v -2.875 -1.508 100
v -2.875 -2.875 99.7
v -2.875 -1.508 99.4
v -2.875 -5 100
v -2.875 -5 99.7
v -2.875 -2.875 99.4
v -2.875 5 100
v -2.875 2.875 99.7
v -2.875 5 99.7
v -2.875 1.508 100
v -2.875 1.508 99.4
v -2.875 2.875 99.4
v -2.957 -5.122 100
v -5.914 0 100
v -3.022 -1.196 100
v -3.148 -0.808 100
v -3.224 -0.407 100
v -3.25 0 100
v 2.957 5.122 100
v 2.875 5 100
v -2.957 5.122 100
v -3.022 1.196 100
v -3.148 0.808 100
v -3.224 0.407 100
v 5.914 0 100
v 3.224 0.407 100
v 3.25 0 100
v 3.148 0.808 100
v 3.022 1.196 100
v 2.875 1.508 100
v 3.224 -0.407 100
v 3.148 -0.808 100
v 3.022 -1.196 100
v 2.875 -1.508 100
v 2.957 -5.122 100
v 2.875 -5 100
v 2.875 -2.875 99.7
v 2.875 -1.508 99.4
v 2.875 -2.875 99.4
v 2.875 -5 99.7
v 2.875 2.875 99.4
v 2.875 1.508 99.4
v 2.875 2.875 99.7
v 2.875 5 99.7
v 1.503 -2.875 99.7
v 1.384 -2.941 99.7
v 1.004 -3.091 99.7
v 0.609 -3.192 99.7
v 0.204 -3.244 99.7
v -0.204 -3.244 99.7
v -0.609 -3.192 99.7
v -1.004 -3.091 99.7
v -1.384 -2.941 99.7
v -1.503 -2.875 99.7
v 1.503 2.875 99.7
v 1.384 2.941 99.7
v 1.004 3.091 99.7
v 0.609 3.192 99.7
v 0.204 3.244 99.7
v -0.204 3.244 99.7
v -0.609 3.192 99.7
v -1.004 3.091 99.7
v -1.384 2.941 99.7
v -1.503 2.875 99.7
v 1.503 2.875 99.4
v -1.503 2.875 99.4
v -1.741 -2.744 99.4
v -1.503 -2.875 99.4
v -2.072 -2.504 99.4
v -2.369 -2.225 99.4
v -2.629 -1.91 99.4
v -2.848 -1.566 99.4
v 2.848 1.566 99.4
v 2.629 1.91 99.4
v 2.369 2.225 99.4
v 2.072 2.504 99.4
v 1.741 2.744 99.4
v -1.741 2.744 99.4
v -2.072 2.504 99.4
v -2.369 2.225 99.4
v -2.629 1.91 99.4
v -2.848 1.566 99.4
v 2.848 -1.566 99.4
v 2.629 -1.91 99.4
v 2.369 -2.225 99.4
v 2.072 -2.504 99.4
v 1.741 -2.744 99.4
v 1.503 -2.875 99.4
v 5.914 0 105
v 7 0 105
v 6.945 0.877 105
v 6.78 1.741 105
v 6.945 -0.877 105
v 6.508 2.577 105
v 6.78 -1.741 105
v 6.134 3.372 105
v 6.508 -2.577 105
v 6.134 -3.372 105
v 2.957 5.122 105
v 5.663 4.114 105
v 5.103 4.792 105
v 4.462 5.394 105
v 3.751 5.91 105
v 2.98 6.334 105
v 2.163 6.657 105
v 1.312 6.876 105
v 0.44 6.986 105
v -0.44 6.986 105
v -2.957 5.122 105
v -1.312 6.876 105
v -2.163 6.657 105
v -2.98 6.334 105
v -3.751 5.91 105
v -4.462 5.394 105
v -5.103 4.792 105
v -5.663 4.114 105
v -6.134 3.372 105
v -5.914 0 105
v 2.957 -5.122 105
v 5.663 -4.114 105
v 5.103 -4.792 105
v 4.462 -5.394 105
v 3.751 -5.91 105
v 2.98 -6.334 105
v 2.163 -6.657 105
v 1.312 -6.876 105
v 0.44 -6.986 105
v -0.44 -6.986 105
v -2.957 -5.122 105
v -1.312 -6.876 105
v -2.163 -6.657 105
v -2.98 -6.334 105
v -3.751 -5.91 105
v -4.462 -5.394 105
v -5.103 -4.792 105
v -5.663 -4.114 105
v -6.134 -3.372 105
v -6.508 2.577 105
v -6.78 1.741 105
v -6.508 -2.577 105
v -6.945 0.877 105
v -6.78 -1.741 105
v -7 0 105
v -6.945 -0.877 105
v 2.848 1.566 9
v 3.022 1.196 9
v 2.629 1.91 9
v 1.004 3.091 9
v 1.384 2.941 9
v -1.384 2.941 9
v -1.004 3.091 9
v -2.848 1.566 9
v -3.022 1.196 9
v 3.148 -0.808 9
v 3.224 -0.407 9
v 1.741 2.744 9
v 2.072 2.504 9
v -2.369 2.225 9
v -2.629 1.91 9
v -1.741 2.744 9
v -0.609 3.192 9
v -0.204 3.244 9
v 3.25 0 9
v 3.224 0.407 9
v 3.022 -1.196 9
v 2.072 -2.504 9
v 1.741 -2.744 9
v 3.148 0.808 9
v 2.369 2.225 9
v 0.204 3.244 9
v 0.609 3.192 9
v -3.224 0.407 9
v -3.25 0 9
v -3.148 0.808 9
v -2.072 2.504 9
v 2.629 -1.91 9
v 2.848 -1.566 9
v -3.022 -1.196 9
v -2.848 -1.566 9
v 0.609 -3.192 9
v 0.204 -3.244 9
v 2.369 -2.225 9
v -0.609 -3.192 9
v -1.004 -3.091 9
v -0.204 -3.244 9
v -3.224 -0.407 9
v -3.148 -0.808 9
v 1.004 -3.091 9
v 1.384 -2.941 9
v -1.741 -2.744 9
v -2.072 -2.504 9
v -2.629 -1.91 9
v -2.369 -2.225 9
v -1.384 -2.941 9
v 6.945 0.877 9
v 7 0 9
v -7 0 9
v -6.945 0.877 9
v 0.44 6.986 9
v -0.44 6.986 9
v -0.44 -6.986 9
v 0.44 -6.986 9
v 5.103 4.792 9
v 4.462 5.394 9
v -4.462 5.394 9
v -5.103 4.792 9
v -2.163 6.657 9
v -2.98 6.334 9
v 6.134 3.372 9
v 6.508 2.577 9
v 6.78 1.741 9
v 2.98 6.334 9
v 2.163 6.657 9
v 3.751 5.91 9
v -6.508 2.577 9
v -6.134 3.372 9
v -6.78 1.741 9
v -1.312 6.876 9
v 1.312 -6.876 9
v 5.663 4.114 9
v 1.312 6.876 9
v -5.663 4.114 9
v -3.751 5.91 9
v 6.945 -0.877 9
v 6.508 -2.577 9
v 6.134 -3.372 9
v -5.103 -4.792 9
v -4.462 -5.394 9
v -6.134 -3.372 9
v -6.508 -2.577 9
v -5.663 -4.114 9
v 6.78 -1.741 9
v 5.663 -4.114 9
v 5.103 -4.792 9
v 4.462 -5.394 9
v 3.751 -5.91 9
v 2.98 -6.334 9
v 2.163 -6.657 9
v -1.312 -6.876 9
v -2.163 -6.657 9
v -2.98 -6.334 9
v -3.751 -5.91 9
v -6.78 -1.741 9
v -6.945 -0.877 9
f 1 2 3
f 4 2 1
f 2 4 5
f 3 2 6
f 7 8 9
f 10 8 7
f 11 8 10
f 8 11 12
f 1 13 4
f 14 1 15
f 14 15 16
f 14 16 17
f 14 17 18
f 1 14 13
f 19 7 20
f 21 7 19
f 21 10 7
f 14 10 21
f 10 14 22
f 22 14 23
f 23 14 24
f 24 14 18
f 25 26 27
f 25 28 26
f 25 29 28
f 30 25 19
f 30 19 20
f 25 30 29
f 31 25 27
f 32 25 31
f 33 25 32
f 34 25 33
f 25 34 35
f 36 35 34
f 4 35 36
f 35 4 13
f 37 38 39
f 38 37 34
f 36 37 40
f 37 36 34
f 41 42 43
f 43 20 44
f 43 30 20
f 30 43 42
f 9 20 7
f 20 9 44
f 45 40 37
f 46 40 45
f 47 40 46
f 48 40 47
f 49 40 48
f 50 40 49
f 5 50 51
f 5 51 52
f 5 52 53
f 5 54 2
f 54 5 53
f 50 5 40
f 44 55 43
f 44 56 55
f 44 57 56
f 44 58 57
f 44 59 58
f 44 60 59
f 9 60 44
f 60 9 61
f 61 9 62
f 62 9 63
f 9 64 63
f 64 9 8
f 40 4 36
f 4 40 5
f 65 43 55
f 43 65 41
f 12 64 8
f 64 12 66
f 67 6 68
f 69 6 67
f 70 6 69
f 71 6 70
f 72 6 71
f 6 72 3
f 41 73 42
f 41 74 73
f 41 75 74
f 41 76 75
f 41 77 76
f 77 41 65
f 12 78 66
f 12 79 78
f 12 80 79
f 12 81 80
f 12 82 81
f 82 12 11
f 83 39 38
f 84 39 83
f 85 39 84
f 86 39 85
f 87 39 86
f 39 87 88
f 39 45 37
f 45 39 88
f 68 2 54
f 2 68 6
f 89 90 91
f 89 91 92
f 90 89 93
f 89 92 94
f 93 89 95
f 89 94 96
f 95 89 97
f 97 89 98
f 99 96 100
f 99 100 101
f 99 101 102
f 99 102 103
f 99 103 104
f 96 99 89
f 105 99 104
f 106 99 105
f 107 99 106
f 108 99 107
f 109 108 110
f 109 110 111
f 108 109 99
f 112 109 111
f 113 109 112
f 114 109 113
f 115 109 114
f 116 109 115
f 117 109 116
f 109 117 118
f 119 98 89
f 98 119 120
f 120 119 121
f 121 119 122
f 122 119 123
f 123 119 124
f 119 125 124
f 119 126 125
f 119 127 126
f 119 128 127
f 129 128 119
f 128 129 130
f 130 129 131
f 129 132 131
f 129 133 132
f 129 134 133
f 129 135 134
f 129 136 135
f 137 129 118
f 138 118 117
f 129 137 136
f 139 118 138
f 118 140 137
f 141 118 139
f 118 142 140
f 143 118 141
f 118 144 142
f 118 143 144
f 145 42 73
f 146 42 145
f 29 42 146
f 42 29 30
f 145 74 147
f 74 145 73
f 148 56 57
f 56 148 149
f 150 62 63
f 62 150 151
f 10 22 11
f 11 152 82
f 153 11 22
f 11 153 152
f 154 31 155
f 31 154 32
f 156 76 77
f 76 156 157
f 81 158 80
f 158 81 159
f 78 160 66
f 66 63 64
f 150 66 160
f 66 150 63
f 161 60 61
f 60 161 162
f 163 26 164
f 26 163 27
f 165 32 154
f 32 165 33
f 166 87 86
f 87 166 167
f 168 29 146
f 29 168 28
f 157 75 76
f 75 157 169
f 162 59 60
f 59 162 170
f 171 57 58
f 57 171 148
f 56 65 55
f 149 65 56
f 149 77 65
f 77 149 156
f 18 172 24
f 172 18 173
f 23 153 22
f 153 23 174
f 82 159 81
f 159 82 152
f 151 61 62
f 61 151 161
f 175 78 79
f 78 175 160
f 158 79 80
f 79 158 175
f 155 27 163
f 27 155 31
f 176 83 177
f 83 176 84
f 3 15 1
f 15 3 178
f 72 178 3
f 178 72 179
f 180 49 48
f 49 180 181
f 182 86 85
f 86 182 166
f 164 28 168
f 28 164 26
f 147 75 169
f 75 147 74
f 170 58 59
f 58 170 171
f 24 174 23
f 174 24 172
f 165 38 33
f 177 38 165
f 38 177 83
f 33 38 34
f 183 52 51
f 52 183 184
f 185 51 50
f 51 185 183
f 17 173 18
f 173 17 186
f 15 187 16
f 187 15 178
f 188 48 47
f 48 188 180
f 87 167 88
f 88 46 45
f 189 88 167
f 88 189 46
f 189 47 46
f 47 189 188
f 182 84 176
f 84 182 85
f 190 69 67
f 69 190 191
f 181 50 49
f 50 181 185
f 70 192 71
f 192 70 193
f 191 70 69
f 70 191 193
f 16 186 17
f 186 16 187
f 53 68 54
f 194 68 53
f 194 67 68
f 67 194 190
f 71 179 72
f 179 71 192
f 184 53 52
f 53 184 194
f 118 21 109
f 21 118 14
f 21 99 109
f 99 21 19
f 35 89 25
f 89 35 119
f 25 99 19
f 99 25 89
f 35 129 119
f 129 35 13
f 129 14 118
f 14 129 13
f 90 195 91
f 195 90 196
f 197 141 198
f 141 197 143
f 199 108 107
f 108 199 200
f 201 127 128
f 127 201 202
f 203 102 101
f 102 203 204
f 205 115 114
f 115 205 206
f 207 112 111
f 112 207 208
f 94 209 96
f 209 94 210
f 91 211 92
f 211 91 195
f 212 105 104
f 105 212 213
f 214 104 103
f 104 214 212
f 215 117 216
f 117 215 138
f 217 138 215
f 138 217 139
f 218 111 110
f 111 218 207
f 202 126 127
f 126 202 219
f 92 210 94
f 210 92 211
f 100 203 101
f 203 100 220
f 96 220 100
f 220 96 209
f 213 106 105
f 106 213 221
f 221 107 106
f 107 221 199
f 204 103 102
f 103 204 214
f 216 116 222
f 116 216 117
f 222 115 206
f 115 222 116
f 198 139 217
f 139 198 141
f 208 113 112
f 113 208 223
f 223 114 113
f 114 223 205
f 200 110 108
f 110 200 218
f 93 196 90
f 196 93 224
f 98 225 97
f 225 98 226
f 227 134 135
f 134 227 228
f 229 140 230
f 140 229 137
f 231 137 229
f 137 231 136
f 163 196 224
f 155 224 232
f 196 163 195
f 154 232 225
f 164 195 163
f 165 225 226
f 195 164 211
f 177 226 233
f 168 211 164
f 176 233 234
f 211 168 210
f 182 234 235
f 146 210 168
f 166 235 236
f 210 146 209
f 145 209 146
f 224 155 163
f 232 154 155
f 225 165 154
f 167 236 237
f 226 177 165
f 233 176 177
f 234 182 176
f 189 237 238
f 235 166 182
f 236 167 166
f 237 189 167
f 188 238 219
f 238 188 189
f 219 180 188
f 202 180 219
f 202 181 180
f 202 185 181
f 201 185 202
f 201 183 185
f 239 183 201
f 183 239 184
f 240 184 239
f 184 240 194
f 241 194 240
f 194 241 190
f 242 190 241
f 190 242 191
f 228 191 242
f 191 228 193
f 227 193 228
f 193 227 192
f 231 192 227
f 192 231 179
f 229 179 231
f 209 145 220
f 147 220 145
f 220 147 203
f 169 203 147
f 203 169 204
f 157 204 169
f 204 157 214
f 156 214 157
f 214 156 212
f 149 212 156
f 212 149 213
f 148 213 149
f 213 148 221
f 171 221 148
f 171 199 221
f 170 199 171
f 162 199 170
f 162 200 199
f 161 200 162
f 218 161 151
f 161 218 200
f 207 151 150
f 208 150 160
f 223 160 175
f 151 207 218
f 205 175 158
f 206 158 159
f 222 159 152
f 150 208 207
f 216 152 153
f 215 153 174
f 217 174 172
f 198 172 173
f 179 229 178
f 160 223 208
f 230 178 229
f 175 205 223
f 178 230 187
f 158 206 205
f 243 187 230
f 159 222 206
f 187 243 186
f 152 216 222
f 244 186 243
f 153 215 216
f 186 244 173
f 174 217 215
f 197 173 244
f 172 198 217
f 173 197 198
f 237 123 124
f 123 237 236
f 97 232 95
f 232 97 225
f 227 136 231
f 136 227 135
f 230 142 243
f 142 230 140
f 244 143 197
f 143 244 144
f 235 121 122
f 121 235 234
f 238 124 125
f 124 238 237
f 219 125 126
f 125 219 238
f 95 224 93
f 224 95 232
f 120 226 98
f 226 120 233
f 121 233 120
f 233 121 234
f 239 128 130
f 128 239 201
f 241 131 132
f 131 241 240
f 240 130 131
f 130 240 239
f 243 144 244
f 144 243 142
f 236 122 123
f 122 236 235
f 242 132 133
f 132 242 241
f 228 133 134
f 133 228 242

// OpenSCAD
$fn = 50;


difference() {
	union() {
		translate(v = [0, 0, 9.0000000000]) {
			cylinder(h = 96, r = 7.0000000000);
		}
	}
	union() {
		translate(v = [0, 0, 105]) {
			rotate(a = [0, 0, 0]) {
				difference() {
					union() {
						#translate(v = [-2.8750000000, -5.0000000000, -5.3000000000]) {
							cube(size = [5.7500000000, 10, 0.3000000000]);
						}
						#translate(v = [-2.8750000000, -2.8750000000, -5.6000000000]) {
							cube(size = [5.7500000000, 5.7500000000, 0.3000000000]);
						}
						#translate(v = [-2.8750000000, -5.0000000000, 0]) {
							cube(size = [5.7500000000, 10, 0.3000000000]);
						}
						#translate(v = [-2.8750000000, -2.8750000000, 0.3000000000]) {
							cube(size = [5.7500000000, 5.7500000000, 0.3000000000]);
						}
						#translate(v = [0, 0, -100.0000000000]) {
							cylinder(h = 200, r = 3.2500000000);
						}
						translate(v = [0, 0, -5]) {
							#linear_extrude(height = 5) {
								polygon(points = [[5.9142500000, 0.0000000000], [2.9571250000, 5.1218907443], [-2.9571250000, 5.1218907443], [-5.9142500000, 0.0000000000], [-2.9571250000, -5.1218907443], [2.9571250000, -5.1218907443]]);
							}
						}
						#translate(v = [-2.8750000000, -5.0000000000, -5.3000000000]) {
							cube(size = [5.7500000000, 10, 0.3000000000]);
						}
						#translate(v = [-2.8750000000, -2.8750000000, -5.6000000000]) {
							cube(size = [5.7500000000, 5.7500000000, 0.3000000000]);
						}
						#translate(v = [-2.8750000000, -5.0000000000, 0]) {
							cube(size = [5.7500000000, 10, 0.3000000000]);
						}
						#translate(v = [-2.8750000000, -2.8750000000, 0.3000000000]) {
							cube(size = [5.7500000000, 5.7500000000, 0.3000000000]);
						}
						#translate(v = [0, 0, -100.0000000000]) {
							cylinder(h = 200, r = 3.2500000000);
						}
						#translate(v = [-2.8750000000, -5.0000000000, -5.3000000000]) {
							cube(size = [5.7500000000, 10, 0.3000000000]);
						}
						#translate(v = [-2.8750000000, -2.8750000000, -5.6000000000]) {
							cube(size = [5.7500000000, 5.7500000000, 0.3000000000]);
						}
						#translate(v = [-2.8750000000, -5.0000000000, 0]) {
							cube(size = [5.7500000000, 10, 0.3000000000]);
						}
						#translate(v = [-2.8750000000, -2.8750000000, 0.3000000000]) {
							cube(size = [5.7500000000, 5.7500000000, 0.3000000000]);
						}
						#translate(v = [0, 0, -100.0000000000]) {
							cylinder(h = 200, r = 3.2500000000);
						}
					}
					union();
				}
			}
		}
		#translate(v = [0, 0, -100.0000000000]) {
			cylinder(h = 200, r = 3.2500000000);
		}
	}
}
